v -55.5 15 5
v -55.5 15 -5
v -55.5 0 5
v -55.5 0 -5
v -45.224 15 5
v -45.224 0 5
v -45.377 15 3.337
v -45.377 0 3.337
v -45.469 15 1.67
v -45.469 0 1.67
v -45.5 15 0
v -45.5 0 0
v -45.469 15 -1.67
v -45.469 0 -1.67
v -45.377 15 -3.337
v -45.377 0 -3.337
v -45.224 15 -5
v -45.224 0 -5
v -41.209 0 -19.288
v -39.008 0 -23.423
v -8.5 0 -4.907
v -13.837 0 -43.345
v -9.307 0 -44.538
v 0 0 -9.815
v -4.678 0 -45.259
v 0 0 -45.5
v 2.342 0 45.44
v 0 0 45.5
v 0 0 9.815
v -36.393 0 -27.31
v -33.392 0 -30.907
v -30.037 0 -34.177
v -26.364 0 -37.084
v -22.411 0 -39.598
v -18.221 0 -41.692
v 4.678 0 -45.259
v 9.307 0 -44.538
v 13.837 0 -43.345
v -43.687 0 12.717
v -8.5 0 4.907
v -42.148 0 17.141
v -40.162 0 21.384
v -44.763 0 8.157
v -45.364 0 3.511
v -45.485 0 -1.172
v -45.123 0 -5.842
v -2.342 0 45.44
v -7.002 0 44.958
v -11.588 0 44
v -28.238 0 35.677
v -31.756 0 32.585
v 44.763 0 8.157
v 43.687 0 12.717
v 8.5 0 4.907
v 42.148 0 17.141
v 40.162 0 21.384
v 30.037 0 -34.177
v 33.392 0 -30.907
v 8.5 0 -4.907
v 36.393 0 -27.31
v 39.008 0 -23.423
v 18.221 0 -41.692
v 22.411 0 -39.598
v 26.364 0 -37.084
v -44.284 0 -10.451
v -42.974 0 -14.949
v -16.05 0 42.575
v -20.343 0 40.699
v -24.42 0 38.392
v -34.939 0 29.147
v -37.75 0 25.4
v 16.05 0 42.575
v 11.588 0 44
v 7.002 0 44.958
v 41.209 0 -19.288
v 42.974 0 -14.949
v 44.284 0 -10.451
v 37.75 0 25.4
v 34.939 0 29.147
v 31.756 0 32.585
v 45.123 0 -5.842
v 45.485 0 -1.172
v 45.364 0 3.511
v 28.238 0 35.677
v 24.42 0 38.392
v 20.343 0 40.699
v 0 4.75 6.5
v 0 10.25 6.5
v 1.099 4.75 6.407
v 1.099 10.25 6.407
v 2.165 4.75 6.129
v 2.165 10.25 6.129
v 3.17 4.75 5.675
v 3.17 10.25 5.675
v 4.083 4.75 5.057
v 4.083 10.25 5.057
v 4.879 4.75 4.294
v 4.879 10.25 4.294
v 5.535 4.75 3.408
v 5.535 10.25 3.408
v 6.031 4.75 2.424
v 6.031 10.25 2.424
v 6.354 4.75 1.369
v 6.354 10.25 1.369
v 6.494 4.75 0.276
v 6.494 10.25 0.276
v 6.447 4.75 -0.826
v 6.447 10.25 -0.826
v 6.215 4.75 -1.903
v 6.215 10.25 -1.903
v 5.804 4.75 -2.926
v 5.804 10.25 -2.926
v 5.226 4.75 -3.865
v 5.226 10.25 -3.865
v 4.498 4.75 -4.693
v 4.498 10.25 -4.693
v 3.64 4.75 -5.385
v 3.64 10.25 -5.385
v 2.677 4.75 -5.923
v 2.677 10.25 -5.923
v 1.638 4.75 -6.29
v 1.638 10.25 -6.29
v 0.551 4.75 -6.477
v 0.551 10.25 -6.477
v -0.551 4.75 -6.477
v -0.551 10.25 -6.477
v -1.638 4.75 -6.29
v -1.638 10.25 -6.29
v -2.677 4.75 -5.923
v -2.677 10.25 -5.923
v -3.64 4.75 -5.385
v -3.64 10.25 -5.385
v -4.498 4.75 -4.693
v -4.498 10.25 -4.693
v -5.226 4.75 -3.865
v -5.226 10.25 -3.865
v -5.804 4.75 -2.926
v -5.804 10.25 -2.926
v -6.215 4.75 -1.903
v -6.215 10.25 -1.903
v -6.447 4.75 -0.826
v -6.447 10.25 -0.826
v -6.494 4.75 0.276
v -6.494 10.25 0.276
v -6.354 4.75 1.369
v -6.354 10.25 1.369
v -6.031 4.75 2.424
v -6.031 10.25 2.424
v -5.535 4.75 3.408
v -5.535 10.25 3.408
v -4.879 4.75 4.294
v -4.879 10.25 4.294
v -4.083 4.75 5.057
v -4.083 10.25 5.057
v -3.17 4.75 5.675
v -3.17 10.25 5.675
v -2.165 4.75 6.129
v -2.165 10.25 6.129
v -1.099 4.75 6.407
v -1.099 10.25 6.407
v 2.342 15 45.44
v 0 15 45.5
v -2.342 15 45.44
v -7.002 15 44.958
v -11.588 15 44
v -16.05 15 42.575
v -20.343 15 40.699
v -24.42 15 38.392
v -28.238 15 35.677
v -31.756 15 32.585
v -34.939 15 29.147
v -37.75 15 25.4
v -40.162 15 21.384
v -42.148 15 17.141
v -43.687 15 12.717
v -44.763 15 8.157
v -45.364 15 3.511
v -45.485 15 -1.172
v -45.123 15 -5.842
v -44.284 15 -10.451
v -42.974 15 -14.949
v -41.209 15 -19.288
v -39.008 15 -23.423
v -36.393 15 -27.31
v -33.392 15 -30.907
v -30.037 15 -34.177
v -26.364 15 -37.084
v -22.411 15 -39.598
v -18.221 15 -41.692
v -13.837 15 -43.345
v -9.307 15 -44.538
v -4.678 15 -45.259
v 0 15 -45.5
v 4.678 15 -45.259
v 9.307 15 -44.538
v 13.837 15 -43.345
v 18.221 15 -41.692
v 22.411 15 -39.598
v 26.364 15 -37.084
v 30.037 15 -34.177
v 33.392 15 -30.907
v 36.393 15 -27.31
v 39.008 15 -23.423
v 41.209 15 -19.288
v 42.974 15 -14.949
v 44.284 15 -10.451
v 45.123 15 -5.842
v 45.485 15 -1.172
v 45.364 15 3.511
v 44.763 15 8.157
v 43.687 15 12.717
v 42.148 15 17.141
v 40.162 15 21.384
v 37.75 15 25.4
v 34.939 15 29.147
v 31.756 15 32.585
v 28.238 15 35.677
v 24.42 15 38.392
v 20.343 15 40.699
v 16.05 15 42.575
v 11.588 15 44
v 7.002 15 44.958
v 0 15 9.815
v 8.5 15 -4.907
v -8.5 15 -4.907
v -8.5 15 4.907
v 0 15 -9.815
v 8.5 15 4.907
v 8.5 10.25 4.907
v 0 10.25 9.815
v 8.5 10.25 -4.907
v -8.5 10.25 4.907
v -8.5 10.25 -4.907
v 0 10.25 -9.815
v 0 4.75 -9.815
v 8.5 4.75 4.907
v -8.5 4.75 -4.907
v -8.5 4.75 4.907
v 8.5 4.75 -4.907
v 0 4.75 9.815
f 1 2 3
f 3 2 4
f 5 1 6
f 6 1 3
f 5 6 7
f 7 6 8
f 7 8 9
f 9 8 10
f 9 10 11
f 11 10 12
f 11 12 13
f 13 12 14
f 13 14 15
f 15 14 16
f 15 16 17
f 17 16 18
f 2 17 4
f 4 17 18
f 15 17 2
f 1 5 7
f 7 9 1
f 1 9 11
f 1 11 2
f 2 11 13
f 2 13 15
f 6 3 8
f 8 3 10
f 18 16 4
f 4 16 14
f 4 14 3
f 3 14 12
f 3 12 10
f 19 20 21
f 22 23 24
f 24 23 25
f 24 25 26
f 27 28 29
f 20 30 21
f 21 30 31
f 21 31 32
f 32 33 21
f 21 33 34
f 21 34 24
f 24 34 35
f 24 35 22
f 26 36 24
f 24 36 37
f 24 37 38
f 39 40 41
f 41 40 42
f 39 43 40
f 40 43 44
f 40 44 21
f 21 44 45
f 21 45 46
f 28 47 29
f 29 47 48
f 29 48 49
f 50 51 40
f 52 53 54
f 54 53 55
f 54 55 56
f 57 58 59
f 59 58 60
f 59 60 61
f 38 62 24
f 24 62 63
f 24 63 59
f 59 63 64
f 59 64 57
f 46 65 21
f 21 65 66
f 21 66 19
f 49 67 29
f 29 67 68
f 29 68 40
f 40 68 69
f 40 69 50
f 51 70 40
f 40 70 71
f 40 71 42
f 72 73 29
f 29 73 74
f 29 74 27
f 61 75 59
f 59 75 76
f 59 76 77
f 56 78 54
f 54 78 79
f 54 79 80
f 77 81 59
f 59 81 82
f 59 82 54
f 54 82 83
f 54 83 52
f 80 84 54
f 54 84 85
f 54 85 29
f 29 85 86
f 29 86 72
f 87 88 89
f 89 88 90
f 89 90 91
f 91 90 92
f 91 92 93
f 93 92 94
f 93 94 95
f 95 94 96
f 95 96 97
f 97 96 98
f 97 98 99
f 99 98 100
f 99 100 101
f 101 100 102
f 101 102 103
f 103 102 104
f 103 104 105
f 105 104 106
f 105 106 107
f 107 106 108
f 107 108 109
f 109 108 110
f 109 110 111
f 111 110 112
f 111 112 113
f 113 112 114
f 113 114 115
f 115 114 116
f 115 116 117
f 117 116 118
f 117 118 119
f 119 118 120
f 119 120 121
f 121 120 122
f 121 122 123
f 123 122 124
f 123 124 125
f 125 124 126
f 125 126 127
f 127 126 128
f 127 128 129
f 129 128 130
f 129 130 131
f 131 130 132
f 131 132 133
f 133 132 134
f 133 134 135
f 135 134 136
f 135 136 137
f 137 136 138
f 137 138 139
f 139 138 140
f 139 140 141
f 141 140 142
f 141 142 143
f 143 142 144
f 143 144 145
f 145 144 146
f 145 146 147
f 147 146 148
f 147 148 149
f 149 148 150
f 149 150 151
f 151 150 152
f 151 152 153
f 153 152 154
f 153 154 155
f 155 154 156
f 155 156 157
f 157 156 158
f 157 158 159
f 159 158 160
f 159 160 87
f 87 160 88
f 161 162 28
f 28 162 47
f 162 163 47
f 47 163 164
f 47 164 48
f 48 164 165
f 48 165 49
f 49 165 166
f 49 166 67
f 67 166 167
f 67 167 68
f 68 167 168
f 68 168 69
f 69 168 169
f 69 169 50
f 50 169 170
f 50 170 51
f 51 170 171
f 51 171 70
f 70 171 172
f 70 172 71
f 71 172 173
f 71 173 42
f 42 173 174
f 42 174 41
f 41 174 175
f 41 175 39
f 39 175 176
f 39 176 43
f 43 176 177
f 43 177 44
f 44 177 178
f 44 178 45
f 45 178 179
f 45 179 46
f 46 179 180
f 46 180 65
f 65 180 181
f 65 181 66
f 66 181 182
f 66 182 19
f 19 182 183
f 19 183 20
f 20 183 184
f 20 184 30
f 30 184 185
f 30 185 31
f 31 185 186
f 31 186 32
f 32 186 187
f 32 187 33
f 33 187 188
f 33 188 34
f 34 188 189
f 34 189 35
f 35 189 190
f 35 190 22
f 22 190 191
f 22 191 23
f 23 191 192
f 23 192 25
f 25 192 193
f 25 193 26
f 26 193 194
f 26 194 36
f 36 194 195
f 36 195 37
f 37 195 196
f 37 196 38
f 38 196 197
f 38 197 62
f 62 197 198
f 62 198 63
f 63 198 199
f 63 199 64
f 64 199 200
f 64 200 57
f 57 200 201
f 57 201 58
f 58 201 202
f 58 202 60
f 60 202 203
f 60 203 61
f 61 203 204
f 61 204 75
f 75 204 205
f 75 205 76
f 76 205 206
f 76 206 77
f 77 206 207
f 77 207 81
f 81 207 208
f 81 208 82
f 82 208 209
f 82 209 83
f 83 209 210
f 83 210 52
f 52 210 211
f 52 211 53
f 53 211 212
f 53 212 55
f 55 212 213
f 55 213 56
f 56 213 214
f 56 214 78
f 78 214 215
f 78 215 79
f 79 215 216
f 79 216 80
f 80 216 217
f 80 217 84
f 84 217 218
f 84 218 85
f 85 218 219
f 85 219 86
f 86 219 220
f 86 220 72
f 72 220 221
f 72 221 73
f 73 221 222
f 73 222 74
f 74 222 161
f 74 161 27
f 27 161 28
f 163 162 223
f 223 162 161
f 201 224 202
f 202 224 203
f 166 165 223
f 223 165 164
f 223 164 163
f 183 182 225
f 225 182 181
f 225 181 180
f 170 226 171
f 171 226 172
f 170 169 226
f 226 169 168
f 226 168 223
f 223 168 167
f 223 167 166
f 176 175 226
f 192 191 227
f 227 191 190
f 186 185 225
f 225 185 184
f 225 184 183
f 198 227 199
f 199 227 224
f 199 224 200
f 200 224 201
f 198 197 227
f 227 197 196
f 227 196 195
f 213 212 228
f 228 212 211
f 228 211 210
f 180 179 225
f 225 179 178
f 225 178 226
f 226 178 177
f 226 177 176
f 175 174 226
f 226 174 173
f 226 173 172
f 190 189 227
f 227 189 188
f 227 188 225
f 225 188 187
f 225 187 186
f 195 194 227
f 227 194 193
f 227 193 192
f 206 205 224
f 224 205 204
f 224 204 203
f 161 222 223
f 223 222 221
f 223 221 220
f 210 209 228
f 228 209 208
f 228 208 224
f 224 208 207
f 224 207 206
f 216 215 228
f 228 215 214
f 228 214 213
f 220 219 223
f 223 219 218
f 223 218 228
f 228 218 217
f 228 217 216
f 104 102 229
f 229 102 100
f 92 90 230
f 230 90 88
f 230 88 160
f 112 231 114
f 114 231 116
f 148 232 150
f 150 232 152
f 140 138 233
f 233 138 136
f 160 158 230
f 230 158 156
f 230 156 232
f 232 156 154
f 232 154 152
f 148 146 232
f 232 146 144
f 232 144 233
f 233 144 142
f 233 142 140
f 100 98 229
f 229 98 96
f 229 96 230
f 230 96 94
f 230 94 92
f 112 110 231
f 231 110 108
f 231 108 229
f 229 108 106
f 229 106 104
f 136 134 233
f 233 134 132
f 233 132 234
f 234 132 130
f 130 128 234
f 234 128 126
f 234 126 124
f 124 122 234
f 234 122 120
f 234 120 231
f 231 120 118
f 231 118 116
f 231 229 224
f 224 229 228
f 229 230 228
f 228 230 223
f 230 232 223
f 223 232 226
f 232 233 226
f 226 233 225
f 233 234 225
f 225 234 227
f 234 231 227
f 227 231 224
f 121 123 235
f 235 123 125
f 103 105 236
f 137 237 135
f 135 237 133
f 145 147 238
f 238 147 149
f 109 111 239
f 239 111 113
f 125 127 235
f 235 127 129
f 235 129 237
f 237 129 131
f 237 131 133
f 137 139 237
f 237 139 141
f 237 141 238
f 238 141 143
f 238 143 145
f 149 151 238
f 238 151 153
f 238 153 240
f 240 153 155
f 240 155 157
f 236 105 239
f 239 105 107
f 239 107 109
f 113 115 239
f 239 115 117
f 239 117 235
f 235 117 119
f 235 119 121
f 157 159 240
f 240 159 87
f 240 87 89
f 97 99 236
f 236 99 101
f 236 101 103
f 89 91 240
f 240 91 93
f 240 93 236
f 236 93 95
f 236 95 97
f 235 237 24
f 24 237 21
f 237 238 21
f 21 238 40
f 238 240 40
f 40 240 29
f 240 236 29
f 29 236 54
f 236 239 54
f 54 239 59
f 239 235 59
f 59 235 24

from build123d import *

# Parameters (mm, degrees)
ESQUISSE1_R             = 45.5
BOSS_EXTRU_1_DEPTH      = 15
BOSS_EXTRU_2_DEPTH      = 15
ESQUISSE3_R             = 6.5
ENL_V_MAT_EXTRU_1_DEPTH = 74.317801385
ENL_V_MAT_EXTRU_3_DEPTH = 4.75
ENL_V_MAT_EXTRU_4_DEPTH = 4.75


with BuildPart() as part:
    # Esquisse1 → Boss.-Extru.1 (new body)
    with BuildSketch(Plane(origin=(0, 0, 0), x_dir=(1, 0, 0), z_dir=(0, 1, 0))):
        with Locations(Location((0, 0, 0), (0, 0, 270))):
            Circle(ESQUISSE1_R)
    extrude(amount=BOSS_EXTRU_1_DEPTH)

    # Esquisse3 → Enlèv. mat.-Extru.1 (cut, through all)
    with BuildSketch(Plane(origin=(0, 15, 0), x_dir=(1, 0, 0), z_dir=(0, 1, 0))):
        with Locations(Location((0, 0, 0), (0, 0, 270))):
            Circle(ESQUISSE3_R)
    extrude(amount=-ENL_V_MAT_EXTRU_1_DEPTH, mode=Mode.SUBTRACT)

    # Esquisse4 → Enlèv. mat.-Extru.3 (cut)
    with BuildSketch(Plane(origin=(0, 15, 0), x_dir=(1, 0, 0), z_dir=(0, 1, 0))):
        Polygon((4.25, 7.361215932), (0, 9.814954576), (-4.25, 7.361215932), (-8.5, 4.907477288), (-8.5, 0), (-8.5, -4.907477288), (-4.25, -7.361215932), (0, -9.814954576), (4.25, -7.361215932), (8.5, -4.907477288), (8.5, 0), (8.5, 4.907477288), align=None)
    extrude(amount=-ENL_V_MAT_EXTRU_3_DEPTH, mode=Mode.SUBTRACT)

    # Esquisse5 → Enlèv. mat.-Extru.4 (cut)
    with BuildSketch(Plane.XZ):
        Polygon((-8.5, 4.907477288), (0, 9.814954576), (8.5, 4.907477288), (8.5, -4.907477288), (0, -9.814954576), (-8.5, -4.907477288), align=None)
    extrude(amount=-ENL_V_MAT_EXTRU_4_DEPTH, mode=Mode.SUBTRACT)


with BuildPart() as body_2:
    # Esquisse2 → Boss.-Extru.2 (new body)
    with BuildSketch(Plane.XZ):
        with BuildLine():
            ThreePointArc((-45.224440295, -5), (-45.431057843, -2.503793779), (-45.5, 0))
            Line((-45.5, 0), (-55.5, 0))
            Line((-55.5, 0), (-55.5, -5))
            Line((-55.5, -5), (-45.224440295, -5))
        make_face()
        with BuildLine():
            Line((-55.5, 0), (-45.5, 0))
            ThreePointArc((-45.5, 0), (-45.431057843, 2.503793779), (-45.224440295, 5))
            Line((-45.224440295, 5), (-55.5, 5))
            Line((-55.5, 5), (-55.5, 0))
        make_face()
    extrude(amount=-BOSS_EXTRU_2_DEPTH)


solid = Compound([part.part, body_2.part])
